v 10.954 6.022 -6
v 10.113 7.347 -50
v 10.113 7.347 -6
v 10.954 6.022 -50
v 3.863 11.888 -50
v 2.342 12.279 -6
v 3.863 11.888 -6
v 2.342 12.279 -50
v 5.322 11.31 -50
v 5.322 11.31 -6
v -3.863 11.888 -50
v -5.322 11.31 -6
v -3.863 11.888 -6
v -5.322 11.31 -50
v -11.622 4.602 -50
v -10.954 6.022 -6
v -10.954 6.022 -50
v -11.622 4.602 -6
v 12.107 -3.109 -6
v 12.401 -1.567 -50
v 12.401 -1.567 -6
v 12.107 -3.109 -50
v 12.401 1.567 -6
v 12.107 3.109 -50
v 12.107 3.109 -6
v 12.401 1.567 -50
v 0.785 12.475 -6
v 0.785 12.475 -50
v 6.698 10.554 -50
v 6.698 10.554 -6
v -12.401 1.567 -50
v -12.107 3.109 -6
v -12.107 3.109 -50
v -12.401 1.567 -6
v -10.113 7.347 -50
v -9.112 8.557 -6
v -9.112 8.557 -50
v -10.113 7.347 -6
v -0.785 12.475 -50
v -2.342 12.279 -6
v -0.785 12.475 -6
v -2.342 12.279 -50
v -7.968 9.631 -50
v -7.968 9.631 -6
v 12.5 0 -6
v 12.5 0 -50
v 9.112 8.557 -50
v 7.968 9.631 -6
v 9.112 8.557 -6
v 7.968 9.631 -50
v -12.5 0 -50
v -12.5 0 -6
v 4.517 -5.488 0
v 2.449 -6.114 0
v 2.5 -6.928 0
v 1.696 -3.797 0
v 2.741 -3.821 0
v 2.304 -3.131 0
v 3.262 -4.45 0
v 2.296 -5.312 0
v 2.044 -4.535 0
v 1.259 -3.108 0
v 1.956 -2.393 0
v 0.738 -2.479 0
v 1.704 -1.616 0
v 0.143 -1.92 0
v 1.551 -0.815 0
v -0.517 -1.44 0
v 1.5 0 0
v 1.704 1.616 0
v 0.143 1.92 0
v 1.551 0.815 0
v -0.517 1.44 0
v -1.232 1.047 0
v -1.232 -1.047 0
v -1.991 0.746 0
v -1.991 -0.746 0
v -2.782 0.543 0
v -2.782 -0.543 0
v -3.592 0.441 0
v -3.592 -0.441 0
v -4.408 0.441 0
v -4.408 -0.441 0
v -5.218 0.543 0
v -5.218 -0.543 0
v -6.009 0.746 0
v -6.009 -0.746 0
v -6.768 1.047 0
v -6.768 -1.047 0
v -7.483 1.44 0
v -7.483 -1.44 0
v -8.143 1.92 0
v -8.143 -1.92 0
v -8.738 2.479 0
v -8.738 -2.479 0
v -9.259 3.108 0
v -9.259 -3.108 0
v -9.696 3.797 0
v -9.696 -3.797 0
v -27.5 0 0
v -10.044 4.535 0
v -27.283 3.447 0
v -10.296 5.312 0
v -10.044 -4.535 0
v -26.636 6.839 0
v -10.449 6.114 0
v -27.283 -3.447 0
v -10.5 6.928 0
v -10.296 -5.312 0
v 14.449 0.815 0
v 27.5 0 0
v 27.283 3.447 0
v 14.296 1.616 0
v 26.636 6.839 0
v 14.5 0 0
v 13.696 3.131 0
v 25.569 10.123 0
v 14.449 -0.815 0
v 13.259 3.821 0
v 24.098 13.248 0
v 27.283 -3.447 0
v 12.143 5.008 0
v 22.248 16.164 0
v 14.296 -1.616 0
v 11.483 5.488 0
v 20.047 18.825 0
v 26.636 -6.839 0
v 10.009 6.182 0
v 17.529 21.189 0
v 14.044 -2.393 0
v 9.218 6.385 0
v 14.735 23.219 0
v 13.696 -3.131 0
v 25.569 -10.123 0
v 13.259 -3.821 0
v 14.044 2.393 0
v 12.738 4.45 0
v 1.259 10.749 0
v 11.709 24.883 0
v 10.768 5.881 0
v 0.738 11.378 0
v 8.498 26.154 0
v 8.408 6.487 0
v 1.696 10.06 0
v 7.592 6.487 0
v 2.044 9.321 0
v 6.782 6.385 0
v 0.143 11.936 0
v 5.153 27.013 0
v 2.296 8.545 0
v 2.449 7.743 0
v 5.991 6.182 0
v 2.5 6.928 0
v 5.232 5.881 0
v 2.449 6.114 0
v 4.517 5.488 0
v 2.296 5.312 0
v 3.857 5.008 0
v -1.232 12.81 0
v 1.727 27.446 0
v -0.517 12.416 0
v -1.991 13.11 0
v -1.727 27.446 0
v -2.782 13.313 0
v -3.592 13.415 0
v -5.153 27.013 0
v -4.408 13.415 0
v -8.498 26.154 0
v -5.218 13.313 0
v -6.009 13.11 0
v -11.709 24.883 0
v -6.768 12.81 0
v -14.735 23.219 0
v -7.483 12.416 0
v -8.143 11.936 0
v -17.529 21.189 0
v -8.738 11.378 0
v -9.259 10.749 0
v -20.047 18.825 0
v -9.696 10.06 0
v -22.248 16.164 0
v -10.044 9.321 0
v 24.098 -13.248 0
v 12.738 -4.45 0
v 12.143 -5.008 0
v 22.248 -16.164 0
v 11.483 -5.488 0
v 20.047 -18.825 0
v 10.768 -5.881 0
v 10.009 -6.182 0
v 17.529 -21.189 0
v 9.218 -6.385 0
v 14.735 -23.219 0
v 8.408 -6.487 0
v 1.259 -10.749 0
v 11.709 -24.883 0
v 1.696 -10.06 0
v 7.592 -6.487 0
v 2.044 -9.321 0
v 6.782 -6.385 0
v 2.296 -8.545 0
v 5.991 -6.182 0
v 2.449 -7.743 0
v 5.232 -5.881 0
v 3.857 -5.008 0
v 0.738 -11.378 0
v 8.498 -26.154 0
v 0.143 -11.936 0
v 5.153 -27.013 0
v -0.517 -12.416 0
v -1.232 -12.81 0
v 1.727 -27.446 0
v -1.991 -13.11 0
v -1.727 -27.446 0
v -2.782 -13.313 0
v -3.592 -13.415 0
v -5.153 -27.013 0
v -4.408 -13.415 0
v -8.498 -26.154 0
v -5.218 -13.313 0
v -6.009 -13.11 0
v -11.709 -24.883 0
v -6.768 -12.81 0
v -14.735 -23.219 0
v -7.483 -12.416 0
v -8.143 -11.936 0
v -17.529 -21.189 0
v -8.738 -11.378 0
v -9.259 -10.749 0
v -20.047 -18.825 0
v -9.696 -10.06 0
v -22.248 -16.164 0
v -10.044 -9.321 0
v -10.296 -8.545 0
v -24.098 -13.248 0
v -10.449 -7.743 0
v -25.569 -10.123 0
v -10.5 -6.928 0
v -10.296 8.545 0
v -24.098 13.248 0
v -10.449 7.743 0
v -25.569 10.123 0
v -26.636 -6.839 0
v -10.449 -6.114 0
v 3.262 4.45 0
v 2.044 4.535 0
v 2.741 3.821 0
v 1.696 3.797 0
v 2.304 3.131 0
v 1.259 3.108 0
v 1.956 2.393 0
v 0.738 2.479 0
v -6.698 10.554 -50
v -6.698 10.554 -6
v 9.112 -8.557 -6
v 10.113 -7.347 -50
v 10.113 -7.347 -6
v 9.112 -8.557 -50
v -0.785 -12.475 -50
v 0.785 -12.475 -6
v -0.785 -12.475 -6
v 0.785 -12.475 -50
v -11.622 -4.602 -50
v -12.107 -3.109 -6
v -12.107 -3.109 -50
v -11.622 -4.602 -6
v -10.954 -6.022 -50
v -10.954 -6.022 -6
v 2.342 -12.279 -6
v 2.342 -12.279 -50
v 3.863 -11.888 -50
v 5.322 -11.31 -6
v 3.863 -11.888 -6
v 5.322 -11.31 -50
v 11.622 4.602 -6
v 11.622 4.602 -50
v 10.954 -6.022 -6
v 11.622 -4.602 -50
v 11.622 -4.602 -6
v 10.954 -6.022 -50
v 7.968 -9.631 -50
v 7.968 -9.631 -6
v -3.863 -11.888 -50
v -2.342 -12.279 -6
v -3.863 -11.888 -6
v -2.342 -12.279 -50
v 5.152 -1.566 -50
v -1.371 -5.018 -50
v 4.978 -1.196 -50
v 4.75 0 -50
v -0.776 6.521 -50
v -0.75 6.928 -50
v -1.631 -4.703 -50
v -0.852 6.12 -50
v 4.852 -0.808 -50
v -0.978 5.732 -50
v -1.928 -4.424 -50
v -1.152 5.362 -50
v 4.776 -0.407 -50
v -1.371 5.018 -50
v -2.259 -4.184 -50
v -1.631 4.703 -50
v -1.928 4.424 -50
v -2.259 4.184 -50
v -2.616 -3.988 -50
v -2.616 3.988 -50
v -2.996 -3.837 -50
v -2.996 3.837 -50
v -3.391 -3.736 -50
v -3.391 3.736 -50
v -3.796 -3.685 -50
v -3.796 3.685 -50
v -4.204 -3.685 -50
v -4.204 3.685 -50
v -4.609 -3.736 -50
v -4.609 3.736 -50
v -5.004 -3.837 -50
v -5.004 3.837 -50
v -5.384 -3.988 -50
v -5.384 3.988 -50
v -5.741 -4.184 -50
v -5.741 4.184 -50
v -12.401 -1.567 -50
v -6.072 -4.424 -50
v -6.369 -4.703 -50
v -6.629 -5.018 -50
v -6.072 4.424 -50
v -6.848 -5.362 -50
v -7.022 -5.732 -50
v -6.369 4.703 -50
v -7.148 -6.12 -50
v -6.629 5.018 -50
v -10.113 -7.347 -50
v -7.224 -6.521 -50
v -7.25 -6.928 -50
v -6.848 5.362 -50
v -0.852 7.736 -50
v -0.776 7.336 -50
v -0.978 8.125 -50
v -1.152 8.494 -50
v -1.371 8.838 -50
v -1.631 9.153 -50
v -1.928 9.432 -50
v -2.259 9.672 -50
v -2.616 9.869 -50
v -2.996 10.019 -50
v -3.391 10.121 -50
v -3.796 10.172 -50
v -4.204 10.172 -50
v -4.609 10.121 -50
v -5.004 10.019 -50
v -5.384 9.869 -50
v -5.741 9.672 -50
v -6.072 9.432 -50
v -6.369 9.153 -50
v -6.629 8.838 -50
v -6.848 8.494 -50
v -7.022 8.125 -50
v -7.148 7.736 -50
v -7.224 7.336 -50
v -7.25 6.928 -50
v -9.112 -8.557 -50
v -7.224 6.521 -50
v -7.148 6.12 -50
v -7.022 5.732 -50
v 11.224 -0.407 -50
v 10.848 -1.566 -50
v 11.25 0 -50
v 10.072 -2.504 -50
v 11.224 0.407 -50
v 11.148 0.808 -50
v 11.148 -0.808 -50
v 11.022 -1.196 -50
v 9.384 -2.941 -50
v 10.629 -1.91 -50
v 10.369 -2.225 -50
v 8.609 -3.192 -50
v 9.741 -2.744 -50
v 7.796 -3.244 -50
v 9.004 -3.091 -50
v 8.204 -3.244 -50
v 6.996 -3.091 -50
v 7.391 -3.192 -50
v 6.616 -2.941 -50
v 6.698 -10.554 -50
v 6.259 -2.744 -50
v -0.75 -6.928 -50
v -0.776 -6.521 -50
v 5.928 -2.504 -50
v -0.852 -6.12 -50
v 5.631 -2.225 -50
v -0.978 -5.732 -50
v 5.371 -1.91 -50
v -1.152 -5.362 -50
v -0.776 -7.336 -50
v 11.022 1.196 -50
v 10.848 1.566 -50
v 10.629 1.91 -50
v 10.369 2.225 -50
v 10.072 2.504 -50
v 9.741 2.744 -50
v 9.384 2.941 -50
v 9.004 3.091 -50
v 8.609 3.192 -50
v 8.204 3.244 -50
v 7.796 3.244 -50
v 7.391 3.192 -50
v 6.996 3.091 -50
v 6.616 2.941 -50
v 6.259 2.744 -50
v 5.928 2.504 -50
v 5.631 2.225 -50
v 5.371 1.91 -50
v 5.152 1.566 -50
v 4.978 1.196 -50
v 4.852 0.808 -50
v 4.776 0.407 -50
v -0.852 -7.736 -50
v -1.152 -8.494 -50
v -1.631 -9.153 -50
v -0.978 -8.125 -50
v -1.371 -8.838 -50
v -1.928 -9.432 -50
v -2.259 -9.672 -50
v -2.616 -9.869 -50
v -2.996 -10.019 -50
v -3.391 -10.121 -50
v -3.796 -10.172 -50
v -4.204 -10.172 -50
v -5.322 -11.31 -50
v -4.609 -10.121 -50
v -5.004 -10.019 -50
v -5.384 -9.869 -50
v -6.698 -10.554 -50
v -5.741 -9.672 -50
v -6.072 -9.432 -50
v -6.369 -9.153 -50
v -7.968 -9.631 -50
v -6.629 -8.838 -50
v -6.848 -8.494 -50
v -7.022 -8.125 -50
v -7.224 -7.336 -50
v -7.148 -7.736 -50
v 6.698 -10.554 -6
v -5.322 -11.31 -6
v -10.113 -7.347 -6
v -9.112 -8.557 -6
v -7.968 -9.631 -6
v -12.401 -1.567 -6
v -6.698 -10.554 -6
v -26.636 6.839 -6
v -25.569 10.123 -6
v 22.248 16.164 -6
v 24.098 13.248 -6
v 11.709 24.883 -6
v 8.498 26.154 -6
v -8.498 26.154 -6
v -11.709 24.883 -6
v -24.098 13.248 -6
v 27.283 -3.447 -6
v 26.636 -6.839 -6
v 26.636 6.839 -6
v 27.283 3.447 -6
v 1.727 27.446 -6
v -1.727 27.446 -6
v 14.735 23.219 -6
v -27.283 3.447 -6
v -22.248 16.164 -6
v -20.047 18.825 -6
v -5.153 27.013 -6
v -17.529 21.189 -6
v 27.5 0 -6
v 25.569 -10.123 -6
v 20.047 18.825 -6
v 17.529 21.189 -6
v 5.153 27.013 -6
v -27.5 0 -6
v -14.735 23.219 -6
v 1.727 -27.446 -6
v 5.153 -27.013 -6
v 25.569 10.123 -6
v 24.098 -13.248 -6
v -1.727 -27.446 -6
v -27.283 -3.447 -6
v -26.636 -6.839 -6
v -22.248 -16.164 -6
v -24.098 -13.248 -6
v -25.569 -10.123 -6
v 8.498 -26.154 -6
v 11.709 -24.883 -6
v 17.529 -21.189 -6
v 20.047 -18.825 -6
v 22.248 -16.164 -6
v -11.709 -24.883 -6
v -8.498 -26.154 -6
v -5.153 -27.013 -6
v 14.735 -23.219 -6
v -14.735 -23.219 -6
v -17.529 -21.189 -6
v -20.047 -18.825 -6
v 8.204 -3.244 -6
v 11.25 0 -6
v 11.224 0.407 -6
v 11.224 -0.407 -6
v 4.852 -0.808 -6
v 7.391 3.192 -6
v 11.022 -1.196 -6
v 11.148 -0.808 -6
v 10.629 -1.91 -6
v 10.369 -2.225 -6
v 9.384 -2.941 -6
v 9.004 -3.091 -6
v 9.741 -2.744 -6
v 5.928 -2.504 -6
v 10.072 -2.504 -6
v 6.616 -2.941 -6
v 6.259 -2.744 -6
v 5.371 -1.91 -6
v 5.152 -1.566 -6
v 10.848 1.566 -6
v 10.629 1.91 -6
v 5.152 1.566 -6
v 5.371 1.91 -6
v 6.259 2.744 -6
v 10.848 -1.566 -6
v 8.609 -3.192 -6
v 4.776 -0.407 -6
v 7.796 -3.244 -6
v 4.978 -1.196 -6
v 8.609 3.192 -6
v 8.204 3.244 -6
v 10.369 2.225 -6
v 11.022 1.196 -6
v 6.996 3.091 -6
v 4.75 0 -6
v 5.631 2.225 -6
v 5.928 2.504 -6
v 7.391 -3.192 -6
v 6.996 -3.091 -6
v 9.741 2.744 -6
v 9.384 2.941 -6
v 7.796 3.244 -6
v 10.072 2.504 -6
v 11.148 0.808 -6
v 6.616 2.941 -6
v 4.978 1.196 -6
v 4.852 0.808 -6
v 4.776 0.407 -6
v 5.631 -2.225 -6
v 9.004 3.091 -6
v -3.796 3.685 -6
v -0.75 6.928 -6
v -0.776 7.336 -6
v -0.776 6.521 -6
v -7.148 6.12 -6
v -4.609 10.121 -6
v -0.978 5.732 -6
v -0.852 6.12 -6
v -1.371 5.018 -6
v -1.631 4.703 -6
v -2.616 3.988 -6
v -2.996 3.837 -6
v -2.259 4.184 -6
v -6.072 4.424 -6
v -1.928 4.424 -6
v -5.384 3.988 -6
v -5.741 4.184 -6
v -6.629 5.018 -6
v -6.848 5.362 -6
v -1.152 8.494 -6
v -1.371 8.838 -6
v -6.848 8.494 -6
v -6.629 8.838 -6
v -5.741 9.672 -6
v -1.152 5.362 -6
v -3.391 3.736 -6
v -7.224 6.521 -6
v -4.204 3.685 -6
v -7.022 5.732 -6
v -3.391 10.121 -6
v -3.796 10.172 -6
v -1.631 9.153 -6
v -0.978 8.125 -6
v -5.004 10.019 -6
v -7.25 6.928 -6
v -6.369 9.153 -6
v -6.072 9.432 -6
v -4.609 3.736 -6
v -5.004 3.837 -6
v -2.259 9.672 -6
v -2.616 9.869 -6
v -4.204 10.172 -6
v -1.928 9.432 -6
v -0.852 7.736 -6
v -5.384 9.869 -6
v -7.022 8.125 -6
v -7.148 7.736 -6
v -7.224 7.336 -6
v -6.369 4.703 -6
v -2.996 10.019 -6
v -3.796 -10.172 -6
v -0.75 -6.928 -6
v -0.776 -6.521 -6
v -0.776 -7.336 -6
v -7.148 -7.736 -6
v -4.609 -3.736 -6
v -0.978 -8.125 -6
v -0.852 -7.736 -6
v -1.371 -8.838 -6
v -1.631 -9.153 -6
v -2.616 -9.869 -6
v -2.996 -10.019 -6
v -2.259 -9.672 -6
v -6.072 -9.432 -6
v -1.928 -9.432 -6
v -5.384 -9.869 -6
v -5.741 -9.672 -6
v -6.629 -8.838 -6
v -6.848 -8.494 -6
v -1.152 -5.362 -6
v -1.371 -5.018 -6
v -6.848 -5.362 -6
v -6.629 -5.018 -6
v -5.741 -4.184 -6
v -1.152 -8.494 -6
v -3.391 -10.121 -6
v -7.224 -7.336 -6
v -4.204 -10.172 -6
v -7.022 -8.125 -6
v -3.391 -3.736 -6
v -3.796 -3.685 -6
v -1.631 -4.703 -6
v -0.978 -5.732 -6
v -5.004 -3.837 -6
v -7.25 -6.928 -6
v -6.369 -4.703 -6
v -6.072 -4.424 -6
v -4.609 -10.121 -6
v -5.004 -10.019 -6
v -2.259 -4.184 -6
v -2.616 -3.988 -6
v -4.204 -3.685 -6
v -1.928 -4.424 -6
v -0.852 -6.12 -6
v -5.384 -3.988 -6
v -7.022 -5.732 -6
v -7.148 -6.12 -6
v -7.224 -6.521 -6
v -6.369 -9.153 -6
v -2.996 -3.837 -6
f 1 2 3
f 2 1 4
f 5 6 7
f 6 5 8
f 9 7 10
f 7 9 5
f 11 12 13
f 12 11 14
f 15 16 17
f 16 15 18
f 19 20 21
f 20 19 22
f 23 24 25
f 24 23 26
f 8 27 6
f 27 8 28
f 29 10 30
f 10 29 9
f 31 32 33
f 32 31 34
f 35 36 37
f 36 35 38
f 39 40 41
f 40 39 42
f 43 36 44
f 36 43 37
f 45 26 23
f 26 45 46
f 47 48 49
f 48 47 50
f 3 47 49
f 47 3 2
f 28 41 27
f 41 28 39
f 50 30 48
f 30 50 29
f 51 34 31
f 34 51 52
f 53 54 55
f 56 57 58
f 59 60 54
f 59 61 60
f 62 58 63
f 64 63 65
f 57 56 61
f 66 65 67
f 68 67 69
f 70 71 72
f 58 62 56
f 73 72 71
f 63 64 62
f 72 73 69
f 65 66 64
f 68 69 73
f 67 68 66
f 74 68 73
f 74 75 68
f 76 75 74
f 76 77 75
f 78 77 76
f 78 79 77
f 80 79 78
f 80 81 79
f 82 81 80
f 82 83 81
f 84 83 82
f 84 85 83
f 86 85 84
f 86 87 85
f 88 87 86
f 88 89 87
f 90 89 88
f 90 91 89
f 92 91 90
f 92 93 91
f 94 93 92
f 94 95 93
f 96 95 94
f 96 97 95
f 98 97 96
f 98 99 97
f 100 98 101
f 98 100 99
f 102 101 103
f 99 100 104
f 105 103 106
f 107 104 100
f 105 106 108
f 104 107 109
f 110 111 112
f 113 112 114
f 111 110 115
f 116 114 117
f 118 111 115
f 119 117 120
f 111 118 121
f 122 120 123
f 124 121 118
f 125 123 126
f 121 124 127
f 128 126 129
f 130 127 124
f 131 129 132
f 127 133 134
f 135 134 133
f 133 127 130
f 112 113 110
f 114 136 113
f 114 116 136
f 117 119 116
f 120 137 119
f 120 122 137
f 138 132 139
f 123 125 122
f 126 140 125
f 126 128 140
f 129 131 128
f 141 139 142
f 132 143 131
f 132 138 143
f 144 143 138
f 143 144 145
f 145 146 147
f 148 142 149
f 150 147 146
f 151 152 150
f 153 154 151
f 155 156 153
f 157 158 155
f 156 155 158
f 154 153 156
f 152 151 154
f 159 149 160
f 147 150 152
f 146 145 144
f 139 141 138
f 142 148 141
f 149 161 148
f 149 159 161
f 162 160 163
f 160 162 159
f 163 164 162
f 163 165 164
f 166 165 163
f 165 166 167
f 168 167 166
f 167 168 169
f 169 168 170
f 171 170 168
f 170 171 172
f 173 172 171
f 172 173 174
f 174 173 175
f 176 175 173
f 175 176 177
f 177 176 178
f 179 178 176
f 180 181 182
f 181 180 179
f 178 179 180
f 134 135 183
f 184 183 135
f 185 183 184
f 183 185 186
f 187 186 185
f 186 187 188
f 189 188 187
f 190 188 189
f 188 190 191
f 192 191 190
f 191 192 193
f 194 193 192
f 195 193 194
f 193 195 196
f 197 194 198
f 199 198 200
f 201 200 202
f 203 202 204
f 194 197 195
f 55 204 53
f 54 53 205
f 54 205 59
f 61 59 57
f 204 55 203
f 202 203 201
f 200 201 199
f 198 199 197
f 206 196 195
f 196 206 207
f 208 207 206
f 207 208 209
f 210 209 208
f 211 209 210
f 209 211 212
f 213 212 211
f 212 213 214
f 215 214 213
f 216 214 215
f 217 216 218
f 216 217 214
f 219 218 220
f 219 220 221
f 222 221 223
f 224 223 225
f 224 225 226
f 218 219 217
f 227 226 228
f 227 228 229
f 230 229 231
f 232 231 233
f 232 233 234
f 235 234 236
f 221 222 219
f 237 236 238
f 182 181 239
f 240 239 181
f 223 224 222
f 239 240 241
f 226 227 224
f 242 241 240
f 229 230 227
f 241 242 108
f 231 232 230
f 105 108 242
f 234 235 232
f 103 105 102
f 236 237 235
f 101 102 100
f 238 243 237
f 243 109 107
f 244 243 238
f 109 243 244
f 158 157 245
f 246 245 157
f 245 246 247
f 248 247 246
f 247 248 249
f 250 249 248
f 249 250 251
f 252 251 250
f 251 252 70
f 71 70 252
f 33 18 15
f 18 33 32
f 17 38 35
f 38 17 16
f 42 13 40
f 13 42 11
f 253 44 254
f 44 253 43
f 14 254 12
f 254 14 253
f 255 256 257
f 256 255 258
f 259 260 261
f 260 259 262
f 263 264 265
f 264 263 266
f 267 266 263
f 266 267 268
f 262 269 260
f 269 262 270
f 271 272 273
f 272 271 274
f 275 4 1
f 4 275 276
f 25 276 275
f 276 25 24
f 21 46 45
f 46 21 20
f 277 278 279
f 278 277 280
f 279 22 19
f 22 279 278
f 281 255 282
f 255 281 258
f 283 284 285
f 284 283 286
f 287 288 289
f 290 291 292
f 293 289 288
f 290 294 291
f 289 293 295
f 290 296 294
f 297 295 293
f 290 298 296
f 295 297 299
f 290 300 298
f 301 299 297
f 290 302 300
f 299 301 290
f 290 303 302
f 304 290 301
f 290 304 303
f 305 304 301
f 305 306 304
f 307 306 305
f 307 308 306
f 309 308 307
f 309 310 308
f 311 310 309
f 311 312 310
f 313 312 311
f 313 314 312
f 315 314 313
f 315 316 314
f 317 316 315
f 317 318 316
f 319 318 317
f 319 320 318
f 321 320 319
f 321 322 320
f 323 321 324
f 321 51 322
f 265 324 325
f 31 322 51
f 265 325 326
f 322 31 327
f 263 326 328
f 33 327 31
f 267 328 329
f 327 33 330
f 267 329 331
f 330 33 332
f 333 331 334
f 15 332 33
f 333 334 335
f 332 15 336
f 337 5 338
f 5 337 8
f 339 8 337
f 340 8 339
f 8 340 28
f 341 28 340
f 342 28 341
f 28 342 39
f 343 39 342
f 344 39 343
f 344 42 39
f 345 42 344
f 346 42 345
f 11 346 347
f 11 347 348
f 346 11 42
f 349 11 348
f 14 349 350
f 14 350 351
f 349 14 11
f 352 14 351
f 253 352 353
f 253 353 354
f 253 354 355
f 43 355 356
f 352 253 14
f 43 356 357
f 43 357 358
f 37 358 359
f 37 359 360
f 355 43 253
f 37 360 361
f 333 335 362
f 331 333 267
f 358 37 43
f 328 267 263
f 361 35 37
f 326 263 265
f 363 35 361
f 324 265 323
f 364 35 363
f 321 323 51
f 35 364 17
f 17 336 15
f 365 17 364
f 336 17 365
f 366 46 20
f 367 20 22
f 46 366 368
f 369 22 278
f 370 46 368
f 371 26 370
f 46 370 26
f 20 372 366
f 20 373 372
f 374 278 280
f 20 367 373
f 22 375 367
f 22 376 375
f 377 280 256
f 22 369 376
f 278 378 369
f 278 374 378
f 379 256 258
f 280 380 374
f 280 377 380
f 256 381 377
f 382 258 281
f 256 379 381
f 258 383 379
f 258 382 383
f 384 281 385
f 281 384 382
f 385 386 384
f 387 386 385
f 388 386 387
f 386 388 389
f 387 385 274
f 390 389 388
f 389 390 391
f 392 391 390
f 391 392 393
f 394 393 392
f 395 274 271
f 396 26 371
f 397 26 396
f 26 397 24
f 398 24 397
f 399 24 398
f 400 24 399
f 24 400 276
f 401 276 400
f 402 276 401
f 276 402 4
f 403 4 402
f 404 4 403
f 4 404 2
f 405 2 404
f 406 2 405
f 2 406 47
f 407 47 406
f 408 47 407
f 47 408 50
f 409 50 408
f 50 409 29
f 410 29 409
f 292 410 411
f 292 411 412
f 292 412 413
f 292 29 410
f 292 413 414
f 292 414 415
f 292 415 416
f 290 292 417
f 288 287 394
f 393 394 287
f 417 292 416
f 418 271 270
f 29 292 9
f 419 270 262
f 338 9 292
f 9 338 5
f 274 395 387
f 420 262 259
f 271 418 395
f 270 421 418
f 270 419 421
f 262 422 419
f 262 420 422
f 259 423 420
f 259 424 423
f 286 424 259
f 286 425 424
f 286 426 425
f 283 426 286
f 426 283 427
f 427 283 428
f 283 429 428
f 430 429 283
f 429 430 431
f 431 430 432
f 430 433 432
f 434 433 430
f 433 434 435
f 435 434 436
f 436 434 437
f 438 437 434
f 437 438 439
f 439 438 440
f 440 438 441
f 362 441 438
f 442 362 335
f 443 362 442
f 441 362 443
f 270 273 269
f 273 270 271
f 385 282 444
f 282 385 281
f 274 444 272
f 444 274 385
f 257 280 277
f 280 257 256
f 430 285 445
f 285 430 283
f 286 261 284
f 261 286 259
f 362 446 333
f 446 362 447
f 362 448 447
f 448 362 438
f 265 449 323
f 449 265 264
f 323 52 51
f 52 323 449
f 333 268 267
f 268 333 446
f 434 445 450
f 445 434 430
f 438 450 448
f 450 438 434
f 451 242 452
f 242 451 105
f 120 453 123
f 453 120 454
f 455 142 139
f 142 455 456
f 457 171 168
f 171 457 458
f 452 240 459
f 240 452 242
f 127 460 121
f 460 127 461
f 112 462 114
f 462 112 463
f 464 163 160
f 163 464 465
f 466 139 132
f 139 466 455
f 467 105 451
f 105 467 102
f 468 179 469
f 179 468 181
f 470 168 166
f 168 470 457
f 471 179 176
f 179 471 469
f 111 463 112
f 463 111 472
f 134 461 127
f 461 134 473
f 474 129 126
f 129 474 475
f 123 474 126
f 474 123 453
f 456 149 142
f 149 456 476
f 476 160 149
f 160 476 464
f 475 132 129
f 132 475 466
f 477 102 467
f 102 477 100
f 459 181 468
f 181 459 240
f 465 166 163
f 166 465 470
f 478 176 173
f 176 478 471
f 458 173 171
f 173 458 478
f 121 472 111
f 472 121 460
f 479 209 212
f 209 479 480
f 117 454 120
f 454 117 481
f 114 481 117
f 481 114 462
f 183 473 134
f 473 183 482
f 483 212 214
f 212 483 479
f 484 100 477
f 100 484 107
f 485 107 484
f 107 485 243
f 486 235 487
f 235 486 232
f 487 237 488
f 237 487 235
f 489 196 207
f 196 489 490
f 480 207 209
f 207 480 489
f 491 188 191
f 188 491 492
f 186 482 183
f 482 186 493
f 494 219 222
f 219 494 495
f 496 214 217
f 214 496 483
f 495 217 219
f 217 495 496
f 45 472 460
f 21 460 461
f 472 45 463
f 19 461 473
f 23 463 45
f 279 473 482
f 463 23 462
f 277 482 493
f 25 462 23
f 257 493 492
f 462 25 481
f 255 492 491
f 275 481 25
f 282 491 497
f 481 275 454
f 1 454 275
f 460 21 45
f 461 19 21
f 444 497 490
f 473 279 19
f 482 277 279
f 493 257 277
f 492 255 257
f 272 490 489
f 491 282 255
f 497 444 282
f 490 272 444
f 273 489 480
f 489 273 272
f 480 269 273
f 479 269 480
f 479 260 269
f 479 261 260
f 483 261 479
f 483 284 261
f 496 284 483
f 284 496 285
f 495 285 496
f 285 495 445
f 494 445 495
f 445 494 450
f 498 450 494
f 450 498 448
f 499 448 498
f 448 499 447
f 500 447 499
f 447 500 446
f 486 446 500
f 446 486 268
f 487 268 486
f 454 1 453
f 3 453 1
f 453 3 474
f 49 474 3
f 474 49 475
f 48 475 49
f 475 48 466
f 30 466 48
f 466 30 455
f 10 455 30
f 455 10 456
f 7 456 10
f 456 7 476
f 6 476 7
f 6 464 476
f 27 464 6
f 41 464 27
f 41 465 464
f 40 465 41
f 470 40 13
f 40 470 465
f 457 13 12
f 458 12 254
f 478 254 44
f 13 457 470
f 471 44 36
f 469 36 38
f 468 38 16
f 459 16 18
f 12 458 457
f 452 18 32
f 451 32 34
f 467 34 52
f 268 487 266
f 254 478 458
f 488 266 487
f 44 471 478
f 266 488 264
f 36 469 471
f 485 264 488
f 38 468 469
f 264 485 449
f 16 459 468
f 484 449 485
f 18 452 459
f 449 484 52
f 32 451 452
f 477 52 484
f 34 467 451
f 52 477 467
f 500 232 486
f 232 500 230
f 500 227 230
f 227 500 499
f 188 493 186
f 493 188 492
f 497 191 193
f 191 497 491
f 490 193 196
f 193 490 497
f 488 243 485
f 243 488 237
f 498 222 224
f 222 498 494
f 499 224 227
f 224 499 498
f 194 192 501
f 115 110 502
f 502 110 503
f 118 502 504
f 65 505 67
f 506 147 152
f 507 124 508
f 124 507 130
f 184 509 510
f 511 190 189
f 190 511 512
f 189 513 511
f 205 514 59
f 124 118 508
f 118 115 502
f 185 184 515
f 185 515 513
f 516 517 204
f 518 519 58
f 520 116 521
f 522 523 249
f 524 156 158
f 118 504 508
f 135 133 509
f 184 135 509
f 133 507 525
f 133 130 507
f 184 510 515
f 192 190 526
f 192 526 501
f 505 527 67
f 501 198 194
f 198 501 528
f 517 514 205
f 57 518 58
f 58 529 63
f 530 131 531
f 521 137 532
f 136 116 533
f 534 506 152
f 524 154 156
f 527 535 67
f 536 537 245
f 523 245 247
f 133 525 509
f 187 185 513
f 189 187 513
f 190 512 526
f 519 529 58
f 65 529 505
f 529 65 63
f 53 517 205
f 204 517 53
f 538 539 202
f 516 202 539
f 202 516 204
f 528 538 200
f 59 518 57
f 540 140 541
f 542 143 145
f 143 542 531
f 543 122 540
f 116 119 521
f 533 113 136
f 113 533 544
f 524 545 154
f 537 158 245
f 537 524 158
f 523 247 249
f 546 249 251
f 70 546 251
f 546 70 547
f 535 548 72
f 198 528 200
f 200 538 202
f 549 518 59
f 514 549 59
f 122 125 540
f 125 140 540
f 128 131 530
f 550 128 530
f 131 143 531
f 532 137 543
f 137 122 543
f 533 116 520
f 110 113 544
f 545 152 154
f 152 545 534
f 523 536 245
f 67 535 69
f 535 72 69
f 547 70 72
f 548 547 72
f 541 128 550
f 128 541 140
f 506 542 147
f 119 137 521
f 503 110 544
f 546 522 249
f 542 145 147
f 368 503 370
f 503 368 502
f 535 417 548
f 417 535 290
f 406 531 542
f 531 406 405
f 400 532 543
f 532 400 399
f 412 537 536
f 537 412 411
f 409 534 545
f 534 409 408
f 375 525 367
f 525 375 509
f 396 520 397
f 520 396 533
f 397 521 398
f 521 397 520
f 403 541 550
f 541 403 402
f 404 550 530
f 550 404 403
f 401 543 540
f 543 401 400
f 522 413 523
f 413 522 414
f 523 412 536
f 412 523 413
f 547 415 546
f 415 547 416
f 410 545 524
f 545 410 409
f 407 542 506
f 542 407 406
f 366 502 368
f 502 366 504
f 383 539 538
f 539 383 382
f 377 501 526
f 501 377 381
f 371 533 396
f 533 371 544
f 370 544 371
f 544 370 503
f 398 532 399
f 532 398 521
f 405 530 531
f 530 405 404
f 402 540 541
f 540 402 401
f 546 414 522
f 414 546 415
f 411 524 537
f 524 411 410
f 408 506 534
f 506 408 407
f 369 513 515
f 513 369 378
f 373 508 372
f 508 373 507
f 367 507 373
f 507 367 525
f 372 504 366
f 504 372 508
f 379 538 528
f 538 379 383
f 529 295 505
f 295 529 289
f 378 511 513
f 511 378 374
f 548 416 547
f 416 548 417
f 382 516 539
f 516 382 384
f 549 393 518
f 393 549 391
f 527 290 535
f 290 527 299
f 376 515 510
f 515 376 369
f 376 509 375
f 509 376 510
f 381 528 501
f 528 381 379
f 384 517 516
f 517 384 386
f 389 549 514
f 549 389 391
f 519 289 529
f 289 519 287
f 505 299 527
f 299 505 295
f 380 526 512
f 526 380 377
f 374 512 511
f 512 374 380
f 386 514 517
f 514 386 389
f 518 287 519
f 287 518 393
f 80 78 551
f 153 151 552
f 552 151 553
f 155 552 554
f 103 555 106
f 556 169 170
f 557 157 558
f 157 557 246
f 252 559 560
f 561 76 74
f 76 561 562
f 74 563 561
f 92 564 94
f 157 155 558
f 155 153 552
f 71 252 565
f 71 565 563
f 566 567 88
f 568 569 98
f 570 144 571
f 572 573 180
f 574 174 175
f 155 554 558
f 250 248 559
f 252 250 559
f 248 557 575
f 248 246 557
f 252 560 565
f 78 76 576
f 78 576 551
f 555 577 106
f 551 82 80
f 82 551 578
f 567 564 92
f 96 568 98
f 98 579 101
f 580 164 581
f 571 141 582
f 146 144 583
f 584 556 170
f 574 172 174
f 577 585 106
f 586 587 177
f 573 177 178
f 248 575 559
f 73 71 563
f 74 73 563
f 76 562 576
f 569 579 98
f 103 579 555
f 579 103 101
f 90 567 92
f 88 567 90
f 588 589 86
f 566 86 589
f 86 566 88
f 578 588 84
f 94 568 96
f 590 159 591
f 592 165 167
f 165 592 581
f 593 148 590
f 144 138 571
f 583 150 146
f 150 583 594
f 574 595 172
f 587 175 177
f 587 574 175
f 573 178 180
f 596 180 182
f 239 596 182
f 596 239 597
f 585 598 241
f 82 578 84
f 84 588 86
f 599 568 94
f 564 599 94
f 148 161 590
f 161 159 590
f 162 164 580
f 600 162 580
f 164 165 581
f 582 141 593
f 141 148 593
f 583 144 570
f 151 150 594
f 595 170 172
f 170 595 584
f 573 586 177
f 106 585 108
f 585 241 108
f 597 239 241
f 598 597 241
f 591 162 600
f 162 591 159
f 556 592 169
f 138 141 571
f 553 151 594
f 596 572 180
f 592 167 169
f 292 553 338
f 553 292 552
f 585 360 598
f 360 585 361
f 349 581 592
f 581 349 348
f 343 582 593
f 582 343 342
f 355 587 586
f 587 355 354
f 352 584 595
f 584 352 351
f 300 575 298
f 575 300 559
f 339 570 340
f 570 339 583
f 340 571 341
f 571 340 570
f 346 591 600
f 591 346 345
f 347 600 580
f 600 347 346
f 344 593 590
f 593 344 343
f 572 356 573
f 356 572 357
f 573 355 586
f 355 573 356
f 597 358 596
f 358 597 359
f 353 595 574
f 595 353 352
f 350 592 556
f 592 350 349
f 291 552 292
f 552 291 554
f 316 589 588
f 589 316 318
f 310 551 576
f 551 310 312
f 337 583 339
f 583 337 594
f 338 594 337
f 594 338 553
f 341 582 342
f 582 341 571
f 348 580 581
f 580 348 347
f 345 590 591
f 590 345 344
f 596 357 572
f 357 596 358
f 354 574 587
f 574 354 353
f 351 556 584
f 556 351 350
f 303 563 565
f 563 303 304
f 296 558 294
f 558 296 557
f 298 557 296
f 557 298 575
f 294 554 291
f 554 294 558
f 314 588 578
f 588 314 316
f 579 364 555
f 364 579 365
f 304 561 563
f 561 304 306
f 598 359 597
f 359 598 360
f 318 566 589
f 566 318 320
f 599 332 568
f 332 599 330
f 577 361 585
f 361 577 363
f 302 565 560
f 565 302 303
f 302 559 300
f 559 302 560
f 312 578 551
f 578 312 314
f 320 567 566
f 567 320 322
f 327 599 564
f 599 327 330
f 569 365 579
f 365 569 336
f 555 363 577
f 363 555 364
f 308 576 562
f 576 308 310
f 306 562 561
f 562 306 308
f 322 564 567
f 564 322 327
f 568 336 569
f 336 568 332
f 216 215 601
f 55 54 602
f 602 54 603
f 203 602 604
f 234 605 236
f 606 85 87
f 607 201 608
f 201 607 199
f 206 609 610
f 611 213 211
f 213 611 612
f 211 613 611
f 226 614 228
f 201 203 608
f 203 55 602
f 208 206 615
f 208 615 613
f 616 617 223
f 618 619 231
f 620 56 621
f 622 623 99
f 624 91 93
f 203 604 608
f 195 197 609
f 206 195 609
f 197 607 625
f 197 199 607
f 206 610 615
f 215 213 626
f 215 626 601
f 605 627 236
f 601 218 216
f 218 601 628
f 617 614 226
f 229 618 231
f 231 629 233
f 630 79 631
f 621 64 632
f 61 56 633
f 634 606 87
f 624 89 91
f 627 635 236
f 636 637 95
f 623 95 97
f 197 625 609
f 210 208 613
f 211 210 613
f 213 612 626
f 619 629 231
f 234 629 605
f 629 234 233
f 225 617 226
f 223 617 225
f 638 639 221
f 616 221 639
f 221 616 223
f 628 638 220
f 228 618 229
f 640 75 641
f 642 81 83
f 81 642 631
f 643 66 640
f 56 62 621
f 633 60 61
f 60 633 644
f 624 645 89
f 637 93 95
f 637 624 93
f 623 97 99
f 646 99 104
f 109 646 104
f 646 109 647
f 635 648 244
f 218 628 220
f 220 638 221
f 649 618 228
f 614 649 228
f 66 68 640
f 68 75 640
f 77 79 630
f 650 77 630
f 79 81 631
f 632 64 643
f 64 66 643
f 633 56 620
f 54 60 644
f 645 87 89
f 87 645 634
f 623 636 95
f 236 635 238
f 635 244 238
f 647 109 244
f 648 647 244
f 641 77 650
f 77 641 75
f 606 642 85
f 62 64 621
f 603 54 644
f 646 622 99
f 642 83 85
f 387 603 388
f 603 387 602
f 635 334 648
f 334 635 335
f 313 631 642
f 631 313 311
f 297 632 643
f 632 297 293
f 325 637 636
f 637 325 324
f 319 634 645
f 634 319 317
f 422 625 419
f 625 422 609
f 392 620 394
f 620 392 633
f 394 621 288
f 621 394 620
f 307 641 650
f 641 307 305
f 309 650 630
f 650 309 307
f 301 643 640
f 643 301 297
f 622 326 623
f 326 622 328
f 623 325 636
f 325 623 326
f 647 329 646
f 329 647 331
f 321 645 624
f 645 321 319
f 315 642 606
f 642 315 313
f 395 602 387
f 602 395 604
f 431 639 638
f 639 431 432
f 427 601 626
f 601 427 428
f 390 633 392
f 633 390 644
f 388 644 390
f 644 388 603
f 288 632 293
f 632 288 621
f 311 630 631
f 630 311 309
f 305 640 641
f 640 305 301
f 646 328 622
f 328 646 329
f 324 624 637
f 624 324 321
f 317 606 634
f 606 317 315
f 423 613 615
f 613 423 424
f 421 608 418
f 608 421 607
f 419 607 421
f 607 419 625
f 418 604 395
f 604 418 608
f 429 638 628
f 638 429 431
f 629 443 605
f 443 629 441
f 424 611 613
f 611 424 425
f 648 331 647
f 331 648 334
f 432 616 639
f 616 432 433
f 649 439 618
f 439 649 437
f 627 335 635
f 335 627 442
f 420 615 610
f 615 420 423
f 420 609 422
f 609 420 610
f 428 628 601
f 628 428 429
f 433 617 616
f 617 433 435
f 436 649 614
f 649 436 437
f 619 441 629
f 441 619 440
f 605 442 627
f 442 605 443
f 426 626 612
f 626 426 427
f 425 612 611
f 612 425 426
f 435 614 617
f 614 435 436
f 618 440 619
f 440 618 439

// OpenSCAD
$fn = 50;


difference() {
	union() {
		translate(v = [0, 0, -50.0000000000]) {
			cylinder(h = 50, r = 12.5000000000);
		}
		translate(v = [0, 0, -6.0000000000]) {
			cylinder(h = 6, r = 27.5000000000);
		}
	}
	union() {
		translate(v = [8.0000000000, 0.0000000000, 0]) {
			rotate(a = [0, 0, 0]) {
				difference() {
					union() {
						#translate(v = [0, 0, -50.0000000000]) {
							cylinder(h = 50, r = 2.2500000000);
						}
						#translate(v = [0, 0, -6]) {
							cylinder(h = 6, r = 12.5000000000, r1 = 3.2500000000, r2 = 6.5000000000);
						}
						#translate(v = [0, 0, -50.0000000000]) {
							cylinder(h = 50, r = 3.2500000000);
						}
						#translate(v = [0, 0, -50.0000000000]) {
							cylinder(h = 50, r = 2.2500000000);
						}
					}
					union();
				}
			}
		}
		translate(v = [-4.0000000000, 6.9282032303, 0]) {
			rotate(a = [0, 0, 0]) {
				difference() {
					union() {
						#translate(v = [0, 0, -50.0000000000]) {
							cylinder(h = 50, r = 2.2500000000);
						}
						#translate(v = [0, 0, -6]) {
							cylinder(h = 6, r = 12.5000000000, r1 = 3.2500000000, r2 = 6.5000000000);
						}
						#translate(v = [0, 0, -50.0000000000]) {
							cylinder(h = 50, r = 3.2500000000);
						}
						#translate(v = [0, 0, -50.0000000000]) {
							cylinder(h = 50, r = 2.2500000000);
						}
					}
					union();
				}
			}
		}
		translate(v = [-4.0000000000, -6.9282032303, 0]) {
			rotate(a = [0, 0, 0]) {
				difference() {
					union() {
						#translate(v = [0, 0, -50.0000000000]) {
							cylinder(h = 50, r = 2.2500000000);
						}
						#translate(v = [0, 0, -6]) {
							cylinder(h = 6, r = 12.5000000000, r1 = 3.2500000000, r2 = 6.5000000000);
						}
						#translate(v = [0, 0, -50.0000000000]) {
							cylinder(h = 50, r = 3.2500000000);
						}
						#translate(v = [0, 0, -50.0000000000]) {
							cylinder(h = 50, r = 2.2500000000);
						}
					}
					union();
				}
			}
		}
	}
}
